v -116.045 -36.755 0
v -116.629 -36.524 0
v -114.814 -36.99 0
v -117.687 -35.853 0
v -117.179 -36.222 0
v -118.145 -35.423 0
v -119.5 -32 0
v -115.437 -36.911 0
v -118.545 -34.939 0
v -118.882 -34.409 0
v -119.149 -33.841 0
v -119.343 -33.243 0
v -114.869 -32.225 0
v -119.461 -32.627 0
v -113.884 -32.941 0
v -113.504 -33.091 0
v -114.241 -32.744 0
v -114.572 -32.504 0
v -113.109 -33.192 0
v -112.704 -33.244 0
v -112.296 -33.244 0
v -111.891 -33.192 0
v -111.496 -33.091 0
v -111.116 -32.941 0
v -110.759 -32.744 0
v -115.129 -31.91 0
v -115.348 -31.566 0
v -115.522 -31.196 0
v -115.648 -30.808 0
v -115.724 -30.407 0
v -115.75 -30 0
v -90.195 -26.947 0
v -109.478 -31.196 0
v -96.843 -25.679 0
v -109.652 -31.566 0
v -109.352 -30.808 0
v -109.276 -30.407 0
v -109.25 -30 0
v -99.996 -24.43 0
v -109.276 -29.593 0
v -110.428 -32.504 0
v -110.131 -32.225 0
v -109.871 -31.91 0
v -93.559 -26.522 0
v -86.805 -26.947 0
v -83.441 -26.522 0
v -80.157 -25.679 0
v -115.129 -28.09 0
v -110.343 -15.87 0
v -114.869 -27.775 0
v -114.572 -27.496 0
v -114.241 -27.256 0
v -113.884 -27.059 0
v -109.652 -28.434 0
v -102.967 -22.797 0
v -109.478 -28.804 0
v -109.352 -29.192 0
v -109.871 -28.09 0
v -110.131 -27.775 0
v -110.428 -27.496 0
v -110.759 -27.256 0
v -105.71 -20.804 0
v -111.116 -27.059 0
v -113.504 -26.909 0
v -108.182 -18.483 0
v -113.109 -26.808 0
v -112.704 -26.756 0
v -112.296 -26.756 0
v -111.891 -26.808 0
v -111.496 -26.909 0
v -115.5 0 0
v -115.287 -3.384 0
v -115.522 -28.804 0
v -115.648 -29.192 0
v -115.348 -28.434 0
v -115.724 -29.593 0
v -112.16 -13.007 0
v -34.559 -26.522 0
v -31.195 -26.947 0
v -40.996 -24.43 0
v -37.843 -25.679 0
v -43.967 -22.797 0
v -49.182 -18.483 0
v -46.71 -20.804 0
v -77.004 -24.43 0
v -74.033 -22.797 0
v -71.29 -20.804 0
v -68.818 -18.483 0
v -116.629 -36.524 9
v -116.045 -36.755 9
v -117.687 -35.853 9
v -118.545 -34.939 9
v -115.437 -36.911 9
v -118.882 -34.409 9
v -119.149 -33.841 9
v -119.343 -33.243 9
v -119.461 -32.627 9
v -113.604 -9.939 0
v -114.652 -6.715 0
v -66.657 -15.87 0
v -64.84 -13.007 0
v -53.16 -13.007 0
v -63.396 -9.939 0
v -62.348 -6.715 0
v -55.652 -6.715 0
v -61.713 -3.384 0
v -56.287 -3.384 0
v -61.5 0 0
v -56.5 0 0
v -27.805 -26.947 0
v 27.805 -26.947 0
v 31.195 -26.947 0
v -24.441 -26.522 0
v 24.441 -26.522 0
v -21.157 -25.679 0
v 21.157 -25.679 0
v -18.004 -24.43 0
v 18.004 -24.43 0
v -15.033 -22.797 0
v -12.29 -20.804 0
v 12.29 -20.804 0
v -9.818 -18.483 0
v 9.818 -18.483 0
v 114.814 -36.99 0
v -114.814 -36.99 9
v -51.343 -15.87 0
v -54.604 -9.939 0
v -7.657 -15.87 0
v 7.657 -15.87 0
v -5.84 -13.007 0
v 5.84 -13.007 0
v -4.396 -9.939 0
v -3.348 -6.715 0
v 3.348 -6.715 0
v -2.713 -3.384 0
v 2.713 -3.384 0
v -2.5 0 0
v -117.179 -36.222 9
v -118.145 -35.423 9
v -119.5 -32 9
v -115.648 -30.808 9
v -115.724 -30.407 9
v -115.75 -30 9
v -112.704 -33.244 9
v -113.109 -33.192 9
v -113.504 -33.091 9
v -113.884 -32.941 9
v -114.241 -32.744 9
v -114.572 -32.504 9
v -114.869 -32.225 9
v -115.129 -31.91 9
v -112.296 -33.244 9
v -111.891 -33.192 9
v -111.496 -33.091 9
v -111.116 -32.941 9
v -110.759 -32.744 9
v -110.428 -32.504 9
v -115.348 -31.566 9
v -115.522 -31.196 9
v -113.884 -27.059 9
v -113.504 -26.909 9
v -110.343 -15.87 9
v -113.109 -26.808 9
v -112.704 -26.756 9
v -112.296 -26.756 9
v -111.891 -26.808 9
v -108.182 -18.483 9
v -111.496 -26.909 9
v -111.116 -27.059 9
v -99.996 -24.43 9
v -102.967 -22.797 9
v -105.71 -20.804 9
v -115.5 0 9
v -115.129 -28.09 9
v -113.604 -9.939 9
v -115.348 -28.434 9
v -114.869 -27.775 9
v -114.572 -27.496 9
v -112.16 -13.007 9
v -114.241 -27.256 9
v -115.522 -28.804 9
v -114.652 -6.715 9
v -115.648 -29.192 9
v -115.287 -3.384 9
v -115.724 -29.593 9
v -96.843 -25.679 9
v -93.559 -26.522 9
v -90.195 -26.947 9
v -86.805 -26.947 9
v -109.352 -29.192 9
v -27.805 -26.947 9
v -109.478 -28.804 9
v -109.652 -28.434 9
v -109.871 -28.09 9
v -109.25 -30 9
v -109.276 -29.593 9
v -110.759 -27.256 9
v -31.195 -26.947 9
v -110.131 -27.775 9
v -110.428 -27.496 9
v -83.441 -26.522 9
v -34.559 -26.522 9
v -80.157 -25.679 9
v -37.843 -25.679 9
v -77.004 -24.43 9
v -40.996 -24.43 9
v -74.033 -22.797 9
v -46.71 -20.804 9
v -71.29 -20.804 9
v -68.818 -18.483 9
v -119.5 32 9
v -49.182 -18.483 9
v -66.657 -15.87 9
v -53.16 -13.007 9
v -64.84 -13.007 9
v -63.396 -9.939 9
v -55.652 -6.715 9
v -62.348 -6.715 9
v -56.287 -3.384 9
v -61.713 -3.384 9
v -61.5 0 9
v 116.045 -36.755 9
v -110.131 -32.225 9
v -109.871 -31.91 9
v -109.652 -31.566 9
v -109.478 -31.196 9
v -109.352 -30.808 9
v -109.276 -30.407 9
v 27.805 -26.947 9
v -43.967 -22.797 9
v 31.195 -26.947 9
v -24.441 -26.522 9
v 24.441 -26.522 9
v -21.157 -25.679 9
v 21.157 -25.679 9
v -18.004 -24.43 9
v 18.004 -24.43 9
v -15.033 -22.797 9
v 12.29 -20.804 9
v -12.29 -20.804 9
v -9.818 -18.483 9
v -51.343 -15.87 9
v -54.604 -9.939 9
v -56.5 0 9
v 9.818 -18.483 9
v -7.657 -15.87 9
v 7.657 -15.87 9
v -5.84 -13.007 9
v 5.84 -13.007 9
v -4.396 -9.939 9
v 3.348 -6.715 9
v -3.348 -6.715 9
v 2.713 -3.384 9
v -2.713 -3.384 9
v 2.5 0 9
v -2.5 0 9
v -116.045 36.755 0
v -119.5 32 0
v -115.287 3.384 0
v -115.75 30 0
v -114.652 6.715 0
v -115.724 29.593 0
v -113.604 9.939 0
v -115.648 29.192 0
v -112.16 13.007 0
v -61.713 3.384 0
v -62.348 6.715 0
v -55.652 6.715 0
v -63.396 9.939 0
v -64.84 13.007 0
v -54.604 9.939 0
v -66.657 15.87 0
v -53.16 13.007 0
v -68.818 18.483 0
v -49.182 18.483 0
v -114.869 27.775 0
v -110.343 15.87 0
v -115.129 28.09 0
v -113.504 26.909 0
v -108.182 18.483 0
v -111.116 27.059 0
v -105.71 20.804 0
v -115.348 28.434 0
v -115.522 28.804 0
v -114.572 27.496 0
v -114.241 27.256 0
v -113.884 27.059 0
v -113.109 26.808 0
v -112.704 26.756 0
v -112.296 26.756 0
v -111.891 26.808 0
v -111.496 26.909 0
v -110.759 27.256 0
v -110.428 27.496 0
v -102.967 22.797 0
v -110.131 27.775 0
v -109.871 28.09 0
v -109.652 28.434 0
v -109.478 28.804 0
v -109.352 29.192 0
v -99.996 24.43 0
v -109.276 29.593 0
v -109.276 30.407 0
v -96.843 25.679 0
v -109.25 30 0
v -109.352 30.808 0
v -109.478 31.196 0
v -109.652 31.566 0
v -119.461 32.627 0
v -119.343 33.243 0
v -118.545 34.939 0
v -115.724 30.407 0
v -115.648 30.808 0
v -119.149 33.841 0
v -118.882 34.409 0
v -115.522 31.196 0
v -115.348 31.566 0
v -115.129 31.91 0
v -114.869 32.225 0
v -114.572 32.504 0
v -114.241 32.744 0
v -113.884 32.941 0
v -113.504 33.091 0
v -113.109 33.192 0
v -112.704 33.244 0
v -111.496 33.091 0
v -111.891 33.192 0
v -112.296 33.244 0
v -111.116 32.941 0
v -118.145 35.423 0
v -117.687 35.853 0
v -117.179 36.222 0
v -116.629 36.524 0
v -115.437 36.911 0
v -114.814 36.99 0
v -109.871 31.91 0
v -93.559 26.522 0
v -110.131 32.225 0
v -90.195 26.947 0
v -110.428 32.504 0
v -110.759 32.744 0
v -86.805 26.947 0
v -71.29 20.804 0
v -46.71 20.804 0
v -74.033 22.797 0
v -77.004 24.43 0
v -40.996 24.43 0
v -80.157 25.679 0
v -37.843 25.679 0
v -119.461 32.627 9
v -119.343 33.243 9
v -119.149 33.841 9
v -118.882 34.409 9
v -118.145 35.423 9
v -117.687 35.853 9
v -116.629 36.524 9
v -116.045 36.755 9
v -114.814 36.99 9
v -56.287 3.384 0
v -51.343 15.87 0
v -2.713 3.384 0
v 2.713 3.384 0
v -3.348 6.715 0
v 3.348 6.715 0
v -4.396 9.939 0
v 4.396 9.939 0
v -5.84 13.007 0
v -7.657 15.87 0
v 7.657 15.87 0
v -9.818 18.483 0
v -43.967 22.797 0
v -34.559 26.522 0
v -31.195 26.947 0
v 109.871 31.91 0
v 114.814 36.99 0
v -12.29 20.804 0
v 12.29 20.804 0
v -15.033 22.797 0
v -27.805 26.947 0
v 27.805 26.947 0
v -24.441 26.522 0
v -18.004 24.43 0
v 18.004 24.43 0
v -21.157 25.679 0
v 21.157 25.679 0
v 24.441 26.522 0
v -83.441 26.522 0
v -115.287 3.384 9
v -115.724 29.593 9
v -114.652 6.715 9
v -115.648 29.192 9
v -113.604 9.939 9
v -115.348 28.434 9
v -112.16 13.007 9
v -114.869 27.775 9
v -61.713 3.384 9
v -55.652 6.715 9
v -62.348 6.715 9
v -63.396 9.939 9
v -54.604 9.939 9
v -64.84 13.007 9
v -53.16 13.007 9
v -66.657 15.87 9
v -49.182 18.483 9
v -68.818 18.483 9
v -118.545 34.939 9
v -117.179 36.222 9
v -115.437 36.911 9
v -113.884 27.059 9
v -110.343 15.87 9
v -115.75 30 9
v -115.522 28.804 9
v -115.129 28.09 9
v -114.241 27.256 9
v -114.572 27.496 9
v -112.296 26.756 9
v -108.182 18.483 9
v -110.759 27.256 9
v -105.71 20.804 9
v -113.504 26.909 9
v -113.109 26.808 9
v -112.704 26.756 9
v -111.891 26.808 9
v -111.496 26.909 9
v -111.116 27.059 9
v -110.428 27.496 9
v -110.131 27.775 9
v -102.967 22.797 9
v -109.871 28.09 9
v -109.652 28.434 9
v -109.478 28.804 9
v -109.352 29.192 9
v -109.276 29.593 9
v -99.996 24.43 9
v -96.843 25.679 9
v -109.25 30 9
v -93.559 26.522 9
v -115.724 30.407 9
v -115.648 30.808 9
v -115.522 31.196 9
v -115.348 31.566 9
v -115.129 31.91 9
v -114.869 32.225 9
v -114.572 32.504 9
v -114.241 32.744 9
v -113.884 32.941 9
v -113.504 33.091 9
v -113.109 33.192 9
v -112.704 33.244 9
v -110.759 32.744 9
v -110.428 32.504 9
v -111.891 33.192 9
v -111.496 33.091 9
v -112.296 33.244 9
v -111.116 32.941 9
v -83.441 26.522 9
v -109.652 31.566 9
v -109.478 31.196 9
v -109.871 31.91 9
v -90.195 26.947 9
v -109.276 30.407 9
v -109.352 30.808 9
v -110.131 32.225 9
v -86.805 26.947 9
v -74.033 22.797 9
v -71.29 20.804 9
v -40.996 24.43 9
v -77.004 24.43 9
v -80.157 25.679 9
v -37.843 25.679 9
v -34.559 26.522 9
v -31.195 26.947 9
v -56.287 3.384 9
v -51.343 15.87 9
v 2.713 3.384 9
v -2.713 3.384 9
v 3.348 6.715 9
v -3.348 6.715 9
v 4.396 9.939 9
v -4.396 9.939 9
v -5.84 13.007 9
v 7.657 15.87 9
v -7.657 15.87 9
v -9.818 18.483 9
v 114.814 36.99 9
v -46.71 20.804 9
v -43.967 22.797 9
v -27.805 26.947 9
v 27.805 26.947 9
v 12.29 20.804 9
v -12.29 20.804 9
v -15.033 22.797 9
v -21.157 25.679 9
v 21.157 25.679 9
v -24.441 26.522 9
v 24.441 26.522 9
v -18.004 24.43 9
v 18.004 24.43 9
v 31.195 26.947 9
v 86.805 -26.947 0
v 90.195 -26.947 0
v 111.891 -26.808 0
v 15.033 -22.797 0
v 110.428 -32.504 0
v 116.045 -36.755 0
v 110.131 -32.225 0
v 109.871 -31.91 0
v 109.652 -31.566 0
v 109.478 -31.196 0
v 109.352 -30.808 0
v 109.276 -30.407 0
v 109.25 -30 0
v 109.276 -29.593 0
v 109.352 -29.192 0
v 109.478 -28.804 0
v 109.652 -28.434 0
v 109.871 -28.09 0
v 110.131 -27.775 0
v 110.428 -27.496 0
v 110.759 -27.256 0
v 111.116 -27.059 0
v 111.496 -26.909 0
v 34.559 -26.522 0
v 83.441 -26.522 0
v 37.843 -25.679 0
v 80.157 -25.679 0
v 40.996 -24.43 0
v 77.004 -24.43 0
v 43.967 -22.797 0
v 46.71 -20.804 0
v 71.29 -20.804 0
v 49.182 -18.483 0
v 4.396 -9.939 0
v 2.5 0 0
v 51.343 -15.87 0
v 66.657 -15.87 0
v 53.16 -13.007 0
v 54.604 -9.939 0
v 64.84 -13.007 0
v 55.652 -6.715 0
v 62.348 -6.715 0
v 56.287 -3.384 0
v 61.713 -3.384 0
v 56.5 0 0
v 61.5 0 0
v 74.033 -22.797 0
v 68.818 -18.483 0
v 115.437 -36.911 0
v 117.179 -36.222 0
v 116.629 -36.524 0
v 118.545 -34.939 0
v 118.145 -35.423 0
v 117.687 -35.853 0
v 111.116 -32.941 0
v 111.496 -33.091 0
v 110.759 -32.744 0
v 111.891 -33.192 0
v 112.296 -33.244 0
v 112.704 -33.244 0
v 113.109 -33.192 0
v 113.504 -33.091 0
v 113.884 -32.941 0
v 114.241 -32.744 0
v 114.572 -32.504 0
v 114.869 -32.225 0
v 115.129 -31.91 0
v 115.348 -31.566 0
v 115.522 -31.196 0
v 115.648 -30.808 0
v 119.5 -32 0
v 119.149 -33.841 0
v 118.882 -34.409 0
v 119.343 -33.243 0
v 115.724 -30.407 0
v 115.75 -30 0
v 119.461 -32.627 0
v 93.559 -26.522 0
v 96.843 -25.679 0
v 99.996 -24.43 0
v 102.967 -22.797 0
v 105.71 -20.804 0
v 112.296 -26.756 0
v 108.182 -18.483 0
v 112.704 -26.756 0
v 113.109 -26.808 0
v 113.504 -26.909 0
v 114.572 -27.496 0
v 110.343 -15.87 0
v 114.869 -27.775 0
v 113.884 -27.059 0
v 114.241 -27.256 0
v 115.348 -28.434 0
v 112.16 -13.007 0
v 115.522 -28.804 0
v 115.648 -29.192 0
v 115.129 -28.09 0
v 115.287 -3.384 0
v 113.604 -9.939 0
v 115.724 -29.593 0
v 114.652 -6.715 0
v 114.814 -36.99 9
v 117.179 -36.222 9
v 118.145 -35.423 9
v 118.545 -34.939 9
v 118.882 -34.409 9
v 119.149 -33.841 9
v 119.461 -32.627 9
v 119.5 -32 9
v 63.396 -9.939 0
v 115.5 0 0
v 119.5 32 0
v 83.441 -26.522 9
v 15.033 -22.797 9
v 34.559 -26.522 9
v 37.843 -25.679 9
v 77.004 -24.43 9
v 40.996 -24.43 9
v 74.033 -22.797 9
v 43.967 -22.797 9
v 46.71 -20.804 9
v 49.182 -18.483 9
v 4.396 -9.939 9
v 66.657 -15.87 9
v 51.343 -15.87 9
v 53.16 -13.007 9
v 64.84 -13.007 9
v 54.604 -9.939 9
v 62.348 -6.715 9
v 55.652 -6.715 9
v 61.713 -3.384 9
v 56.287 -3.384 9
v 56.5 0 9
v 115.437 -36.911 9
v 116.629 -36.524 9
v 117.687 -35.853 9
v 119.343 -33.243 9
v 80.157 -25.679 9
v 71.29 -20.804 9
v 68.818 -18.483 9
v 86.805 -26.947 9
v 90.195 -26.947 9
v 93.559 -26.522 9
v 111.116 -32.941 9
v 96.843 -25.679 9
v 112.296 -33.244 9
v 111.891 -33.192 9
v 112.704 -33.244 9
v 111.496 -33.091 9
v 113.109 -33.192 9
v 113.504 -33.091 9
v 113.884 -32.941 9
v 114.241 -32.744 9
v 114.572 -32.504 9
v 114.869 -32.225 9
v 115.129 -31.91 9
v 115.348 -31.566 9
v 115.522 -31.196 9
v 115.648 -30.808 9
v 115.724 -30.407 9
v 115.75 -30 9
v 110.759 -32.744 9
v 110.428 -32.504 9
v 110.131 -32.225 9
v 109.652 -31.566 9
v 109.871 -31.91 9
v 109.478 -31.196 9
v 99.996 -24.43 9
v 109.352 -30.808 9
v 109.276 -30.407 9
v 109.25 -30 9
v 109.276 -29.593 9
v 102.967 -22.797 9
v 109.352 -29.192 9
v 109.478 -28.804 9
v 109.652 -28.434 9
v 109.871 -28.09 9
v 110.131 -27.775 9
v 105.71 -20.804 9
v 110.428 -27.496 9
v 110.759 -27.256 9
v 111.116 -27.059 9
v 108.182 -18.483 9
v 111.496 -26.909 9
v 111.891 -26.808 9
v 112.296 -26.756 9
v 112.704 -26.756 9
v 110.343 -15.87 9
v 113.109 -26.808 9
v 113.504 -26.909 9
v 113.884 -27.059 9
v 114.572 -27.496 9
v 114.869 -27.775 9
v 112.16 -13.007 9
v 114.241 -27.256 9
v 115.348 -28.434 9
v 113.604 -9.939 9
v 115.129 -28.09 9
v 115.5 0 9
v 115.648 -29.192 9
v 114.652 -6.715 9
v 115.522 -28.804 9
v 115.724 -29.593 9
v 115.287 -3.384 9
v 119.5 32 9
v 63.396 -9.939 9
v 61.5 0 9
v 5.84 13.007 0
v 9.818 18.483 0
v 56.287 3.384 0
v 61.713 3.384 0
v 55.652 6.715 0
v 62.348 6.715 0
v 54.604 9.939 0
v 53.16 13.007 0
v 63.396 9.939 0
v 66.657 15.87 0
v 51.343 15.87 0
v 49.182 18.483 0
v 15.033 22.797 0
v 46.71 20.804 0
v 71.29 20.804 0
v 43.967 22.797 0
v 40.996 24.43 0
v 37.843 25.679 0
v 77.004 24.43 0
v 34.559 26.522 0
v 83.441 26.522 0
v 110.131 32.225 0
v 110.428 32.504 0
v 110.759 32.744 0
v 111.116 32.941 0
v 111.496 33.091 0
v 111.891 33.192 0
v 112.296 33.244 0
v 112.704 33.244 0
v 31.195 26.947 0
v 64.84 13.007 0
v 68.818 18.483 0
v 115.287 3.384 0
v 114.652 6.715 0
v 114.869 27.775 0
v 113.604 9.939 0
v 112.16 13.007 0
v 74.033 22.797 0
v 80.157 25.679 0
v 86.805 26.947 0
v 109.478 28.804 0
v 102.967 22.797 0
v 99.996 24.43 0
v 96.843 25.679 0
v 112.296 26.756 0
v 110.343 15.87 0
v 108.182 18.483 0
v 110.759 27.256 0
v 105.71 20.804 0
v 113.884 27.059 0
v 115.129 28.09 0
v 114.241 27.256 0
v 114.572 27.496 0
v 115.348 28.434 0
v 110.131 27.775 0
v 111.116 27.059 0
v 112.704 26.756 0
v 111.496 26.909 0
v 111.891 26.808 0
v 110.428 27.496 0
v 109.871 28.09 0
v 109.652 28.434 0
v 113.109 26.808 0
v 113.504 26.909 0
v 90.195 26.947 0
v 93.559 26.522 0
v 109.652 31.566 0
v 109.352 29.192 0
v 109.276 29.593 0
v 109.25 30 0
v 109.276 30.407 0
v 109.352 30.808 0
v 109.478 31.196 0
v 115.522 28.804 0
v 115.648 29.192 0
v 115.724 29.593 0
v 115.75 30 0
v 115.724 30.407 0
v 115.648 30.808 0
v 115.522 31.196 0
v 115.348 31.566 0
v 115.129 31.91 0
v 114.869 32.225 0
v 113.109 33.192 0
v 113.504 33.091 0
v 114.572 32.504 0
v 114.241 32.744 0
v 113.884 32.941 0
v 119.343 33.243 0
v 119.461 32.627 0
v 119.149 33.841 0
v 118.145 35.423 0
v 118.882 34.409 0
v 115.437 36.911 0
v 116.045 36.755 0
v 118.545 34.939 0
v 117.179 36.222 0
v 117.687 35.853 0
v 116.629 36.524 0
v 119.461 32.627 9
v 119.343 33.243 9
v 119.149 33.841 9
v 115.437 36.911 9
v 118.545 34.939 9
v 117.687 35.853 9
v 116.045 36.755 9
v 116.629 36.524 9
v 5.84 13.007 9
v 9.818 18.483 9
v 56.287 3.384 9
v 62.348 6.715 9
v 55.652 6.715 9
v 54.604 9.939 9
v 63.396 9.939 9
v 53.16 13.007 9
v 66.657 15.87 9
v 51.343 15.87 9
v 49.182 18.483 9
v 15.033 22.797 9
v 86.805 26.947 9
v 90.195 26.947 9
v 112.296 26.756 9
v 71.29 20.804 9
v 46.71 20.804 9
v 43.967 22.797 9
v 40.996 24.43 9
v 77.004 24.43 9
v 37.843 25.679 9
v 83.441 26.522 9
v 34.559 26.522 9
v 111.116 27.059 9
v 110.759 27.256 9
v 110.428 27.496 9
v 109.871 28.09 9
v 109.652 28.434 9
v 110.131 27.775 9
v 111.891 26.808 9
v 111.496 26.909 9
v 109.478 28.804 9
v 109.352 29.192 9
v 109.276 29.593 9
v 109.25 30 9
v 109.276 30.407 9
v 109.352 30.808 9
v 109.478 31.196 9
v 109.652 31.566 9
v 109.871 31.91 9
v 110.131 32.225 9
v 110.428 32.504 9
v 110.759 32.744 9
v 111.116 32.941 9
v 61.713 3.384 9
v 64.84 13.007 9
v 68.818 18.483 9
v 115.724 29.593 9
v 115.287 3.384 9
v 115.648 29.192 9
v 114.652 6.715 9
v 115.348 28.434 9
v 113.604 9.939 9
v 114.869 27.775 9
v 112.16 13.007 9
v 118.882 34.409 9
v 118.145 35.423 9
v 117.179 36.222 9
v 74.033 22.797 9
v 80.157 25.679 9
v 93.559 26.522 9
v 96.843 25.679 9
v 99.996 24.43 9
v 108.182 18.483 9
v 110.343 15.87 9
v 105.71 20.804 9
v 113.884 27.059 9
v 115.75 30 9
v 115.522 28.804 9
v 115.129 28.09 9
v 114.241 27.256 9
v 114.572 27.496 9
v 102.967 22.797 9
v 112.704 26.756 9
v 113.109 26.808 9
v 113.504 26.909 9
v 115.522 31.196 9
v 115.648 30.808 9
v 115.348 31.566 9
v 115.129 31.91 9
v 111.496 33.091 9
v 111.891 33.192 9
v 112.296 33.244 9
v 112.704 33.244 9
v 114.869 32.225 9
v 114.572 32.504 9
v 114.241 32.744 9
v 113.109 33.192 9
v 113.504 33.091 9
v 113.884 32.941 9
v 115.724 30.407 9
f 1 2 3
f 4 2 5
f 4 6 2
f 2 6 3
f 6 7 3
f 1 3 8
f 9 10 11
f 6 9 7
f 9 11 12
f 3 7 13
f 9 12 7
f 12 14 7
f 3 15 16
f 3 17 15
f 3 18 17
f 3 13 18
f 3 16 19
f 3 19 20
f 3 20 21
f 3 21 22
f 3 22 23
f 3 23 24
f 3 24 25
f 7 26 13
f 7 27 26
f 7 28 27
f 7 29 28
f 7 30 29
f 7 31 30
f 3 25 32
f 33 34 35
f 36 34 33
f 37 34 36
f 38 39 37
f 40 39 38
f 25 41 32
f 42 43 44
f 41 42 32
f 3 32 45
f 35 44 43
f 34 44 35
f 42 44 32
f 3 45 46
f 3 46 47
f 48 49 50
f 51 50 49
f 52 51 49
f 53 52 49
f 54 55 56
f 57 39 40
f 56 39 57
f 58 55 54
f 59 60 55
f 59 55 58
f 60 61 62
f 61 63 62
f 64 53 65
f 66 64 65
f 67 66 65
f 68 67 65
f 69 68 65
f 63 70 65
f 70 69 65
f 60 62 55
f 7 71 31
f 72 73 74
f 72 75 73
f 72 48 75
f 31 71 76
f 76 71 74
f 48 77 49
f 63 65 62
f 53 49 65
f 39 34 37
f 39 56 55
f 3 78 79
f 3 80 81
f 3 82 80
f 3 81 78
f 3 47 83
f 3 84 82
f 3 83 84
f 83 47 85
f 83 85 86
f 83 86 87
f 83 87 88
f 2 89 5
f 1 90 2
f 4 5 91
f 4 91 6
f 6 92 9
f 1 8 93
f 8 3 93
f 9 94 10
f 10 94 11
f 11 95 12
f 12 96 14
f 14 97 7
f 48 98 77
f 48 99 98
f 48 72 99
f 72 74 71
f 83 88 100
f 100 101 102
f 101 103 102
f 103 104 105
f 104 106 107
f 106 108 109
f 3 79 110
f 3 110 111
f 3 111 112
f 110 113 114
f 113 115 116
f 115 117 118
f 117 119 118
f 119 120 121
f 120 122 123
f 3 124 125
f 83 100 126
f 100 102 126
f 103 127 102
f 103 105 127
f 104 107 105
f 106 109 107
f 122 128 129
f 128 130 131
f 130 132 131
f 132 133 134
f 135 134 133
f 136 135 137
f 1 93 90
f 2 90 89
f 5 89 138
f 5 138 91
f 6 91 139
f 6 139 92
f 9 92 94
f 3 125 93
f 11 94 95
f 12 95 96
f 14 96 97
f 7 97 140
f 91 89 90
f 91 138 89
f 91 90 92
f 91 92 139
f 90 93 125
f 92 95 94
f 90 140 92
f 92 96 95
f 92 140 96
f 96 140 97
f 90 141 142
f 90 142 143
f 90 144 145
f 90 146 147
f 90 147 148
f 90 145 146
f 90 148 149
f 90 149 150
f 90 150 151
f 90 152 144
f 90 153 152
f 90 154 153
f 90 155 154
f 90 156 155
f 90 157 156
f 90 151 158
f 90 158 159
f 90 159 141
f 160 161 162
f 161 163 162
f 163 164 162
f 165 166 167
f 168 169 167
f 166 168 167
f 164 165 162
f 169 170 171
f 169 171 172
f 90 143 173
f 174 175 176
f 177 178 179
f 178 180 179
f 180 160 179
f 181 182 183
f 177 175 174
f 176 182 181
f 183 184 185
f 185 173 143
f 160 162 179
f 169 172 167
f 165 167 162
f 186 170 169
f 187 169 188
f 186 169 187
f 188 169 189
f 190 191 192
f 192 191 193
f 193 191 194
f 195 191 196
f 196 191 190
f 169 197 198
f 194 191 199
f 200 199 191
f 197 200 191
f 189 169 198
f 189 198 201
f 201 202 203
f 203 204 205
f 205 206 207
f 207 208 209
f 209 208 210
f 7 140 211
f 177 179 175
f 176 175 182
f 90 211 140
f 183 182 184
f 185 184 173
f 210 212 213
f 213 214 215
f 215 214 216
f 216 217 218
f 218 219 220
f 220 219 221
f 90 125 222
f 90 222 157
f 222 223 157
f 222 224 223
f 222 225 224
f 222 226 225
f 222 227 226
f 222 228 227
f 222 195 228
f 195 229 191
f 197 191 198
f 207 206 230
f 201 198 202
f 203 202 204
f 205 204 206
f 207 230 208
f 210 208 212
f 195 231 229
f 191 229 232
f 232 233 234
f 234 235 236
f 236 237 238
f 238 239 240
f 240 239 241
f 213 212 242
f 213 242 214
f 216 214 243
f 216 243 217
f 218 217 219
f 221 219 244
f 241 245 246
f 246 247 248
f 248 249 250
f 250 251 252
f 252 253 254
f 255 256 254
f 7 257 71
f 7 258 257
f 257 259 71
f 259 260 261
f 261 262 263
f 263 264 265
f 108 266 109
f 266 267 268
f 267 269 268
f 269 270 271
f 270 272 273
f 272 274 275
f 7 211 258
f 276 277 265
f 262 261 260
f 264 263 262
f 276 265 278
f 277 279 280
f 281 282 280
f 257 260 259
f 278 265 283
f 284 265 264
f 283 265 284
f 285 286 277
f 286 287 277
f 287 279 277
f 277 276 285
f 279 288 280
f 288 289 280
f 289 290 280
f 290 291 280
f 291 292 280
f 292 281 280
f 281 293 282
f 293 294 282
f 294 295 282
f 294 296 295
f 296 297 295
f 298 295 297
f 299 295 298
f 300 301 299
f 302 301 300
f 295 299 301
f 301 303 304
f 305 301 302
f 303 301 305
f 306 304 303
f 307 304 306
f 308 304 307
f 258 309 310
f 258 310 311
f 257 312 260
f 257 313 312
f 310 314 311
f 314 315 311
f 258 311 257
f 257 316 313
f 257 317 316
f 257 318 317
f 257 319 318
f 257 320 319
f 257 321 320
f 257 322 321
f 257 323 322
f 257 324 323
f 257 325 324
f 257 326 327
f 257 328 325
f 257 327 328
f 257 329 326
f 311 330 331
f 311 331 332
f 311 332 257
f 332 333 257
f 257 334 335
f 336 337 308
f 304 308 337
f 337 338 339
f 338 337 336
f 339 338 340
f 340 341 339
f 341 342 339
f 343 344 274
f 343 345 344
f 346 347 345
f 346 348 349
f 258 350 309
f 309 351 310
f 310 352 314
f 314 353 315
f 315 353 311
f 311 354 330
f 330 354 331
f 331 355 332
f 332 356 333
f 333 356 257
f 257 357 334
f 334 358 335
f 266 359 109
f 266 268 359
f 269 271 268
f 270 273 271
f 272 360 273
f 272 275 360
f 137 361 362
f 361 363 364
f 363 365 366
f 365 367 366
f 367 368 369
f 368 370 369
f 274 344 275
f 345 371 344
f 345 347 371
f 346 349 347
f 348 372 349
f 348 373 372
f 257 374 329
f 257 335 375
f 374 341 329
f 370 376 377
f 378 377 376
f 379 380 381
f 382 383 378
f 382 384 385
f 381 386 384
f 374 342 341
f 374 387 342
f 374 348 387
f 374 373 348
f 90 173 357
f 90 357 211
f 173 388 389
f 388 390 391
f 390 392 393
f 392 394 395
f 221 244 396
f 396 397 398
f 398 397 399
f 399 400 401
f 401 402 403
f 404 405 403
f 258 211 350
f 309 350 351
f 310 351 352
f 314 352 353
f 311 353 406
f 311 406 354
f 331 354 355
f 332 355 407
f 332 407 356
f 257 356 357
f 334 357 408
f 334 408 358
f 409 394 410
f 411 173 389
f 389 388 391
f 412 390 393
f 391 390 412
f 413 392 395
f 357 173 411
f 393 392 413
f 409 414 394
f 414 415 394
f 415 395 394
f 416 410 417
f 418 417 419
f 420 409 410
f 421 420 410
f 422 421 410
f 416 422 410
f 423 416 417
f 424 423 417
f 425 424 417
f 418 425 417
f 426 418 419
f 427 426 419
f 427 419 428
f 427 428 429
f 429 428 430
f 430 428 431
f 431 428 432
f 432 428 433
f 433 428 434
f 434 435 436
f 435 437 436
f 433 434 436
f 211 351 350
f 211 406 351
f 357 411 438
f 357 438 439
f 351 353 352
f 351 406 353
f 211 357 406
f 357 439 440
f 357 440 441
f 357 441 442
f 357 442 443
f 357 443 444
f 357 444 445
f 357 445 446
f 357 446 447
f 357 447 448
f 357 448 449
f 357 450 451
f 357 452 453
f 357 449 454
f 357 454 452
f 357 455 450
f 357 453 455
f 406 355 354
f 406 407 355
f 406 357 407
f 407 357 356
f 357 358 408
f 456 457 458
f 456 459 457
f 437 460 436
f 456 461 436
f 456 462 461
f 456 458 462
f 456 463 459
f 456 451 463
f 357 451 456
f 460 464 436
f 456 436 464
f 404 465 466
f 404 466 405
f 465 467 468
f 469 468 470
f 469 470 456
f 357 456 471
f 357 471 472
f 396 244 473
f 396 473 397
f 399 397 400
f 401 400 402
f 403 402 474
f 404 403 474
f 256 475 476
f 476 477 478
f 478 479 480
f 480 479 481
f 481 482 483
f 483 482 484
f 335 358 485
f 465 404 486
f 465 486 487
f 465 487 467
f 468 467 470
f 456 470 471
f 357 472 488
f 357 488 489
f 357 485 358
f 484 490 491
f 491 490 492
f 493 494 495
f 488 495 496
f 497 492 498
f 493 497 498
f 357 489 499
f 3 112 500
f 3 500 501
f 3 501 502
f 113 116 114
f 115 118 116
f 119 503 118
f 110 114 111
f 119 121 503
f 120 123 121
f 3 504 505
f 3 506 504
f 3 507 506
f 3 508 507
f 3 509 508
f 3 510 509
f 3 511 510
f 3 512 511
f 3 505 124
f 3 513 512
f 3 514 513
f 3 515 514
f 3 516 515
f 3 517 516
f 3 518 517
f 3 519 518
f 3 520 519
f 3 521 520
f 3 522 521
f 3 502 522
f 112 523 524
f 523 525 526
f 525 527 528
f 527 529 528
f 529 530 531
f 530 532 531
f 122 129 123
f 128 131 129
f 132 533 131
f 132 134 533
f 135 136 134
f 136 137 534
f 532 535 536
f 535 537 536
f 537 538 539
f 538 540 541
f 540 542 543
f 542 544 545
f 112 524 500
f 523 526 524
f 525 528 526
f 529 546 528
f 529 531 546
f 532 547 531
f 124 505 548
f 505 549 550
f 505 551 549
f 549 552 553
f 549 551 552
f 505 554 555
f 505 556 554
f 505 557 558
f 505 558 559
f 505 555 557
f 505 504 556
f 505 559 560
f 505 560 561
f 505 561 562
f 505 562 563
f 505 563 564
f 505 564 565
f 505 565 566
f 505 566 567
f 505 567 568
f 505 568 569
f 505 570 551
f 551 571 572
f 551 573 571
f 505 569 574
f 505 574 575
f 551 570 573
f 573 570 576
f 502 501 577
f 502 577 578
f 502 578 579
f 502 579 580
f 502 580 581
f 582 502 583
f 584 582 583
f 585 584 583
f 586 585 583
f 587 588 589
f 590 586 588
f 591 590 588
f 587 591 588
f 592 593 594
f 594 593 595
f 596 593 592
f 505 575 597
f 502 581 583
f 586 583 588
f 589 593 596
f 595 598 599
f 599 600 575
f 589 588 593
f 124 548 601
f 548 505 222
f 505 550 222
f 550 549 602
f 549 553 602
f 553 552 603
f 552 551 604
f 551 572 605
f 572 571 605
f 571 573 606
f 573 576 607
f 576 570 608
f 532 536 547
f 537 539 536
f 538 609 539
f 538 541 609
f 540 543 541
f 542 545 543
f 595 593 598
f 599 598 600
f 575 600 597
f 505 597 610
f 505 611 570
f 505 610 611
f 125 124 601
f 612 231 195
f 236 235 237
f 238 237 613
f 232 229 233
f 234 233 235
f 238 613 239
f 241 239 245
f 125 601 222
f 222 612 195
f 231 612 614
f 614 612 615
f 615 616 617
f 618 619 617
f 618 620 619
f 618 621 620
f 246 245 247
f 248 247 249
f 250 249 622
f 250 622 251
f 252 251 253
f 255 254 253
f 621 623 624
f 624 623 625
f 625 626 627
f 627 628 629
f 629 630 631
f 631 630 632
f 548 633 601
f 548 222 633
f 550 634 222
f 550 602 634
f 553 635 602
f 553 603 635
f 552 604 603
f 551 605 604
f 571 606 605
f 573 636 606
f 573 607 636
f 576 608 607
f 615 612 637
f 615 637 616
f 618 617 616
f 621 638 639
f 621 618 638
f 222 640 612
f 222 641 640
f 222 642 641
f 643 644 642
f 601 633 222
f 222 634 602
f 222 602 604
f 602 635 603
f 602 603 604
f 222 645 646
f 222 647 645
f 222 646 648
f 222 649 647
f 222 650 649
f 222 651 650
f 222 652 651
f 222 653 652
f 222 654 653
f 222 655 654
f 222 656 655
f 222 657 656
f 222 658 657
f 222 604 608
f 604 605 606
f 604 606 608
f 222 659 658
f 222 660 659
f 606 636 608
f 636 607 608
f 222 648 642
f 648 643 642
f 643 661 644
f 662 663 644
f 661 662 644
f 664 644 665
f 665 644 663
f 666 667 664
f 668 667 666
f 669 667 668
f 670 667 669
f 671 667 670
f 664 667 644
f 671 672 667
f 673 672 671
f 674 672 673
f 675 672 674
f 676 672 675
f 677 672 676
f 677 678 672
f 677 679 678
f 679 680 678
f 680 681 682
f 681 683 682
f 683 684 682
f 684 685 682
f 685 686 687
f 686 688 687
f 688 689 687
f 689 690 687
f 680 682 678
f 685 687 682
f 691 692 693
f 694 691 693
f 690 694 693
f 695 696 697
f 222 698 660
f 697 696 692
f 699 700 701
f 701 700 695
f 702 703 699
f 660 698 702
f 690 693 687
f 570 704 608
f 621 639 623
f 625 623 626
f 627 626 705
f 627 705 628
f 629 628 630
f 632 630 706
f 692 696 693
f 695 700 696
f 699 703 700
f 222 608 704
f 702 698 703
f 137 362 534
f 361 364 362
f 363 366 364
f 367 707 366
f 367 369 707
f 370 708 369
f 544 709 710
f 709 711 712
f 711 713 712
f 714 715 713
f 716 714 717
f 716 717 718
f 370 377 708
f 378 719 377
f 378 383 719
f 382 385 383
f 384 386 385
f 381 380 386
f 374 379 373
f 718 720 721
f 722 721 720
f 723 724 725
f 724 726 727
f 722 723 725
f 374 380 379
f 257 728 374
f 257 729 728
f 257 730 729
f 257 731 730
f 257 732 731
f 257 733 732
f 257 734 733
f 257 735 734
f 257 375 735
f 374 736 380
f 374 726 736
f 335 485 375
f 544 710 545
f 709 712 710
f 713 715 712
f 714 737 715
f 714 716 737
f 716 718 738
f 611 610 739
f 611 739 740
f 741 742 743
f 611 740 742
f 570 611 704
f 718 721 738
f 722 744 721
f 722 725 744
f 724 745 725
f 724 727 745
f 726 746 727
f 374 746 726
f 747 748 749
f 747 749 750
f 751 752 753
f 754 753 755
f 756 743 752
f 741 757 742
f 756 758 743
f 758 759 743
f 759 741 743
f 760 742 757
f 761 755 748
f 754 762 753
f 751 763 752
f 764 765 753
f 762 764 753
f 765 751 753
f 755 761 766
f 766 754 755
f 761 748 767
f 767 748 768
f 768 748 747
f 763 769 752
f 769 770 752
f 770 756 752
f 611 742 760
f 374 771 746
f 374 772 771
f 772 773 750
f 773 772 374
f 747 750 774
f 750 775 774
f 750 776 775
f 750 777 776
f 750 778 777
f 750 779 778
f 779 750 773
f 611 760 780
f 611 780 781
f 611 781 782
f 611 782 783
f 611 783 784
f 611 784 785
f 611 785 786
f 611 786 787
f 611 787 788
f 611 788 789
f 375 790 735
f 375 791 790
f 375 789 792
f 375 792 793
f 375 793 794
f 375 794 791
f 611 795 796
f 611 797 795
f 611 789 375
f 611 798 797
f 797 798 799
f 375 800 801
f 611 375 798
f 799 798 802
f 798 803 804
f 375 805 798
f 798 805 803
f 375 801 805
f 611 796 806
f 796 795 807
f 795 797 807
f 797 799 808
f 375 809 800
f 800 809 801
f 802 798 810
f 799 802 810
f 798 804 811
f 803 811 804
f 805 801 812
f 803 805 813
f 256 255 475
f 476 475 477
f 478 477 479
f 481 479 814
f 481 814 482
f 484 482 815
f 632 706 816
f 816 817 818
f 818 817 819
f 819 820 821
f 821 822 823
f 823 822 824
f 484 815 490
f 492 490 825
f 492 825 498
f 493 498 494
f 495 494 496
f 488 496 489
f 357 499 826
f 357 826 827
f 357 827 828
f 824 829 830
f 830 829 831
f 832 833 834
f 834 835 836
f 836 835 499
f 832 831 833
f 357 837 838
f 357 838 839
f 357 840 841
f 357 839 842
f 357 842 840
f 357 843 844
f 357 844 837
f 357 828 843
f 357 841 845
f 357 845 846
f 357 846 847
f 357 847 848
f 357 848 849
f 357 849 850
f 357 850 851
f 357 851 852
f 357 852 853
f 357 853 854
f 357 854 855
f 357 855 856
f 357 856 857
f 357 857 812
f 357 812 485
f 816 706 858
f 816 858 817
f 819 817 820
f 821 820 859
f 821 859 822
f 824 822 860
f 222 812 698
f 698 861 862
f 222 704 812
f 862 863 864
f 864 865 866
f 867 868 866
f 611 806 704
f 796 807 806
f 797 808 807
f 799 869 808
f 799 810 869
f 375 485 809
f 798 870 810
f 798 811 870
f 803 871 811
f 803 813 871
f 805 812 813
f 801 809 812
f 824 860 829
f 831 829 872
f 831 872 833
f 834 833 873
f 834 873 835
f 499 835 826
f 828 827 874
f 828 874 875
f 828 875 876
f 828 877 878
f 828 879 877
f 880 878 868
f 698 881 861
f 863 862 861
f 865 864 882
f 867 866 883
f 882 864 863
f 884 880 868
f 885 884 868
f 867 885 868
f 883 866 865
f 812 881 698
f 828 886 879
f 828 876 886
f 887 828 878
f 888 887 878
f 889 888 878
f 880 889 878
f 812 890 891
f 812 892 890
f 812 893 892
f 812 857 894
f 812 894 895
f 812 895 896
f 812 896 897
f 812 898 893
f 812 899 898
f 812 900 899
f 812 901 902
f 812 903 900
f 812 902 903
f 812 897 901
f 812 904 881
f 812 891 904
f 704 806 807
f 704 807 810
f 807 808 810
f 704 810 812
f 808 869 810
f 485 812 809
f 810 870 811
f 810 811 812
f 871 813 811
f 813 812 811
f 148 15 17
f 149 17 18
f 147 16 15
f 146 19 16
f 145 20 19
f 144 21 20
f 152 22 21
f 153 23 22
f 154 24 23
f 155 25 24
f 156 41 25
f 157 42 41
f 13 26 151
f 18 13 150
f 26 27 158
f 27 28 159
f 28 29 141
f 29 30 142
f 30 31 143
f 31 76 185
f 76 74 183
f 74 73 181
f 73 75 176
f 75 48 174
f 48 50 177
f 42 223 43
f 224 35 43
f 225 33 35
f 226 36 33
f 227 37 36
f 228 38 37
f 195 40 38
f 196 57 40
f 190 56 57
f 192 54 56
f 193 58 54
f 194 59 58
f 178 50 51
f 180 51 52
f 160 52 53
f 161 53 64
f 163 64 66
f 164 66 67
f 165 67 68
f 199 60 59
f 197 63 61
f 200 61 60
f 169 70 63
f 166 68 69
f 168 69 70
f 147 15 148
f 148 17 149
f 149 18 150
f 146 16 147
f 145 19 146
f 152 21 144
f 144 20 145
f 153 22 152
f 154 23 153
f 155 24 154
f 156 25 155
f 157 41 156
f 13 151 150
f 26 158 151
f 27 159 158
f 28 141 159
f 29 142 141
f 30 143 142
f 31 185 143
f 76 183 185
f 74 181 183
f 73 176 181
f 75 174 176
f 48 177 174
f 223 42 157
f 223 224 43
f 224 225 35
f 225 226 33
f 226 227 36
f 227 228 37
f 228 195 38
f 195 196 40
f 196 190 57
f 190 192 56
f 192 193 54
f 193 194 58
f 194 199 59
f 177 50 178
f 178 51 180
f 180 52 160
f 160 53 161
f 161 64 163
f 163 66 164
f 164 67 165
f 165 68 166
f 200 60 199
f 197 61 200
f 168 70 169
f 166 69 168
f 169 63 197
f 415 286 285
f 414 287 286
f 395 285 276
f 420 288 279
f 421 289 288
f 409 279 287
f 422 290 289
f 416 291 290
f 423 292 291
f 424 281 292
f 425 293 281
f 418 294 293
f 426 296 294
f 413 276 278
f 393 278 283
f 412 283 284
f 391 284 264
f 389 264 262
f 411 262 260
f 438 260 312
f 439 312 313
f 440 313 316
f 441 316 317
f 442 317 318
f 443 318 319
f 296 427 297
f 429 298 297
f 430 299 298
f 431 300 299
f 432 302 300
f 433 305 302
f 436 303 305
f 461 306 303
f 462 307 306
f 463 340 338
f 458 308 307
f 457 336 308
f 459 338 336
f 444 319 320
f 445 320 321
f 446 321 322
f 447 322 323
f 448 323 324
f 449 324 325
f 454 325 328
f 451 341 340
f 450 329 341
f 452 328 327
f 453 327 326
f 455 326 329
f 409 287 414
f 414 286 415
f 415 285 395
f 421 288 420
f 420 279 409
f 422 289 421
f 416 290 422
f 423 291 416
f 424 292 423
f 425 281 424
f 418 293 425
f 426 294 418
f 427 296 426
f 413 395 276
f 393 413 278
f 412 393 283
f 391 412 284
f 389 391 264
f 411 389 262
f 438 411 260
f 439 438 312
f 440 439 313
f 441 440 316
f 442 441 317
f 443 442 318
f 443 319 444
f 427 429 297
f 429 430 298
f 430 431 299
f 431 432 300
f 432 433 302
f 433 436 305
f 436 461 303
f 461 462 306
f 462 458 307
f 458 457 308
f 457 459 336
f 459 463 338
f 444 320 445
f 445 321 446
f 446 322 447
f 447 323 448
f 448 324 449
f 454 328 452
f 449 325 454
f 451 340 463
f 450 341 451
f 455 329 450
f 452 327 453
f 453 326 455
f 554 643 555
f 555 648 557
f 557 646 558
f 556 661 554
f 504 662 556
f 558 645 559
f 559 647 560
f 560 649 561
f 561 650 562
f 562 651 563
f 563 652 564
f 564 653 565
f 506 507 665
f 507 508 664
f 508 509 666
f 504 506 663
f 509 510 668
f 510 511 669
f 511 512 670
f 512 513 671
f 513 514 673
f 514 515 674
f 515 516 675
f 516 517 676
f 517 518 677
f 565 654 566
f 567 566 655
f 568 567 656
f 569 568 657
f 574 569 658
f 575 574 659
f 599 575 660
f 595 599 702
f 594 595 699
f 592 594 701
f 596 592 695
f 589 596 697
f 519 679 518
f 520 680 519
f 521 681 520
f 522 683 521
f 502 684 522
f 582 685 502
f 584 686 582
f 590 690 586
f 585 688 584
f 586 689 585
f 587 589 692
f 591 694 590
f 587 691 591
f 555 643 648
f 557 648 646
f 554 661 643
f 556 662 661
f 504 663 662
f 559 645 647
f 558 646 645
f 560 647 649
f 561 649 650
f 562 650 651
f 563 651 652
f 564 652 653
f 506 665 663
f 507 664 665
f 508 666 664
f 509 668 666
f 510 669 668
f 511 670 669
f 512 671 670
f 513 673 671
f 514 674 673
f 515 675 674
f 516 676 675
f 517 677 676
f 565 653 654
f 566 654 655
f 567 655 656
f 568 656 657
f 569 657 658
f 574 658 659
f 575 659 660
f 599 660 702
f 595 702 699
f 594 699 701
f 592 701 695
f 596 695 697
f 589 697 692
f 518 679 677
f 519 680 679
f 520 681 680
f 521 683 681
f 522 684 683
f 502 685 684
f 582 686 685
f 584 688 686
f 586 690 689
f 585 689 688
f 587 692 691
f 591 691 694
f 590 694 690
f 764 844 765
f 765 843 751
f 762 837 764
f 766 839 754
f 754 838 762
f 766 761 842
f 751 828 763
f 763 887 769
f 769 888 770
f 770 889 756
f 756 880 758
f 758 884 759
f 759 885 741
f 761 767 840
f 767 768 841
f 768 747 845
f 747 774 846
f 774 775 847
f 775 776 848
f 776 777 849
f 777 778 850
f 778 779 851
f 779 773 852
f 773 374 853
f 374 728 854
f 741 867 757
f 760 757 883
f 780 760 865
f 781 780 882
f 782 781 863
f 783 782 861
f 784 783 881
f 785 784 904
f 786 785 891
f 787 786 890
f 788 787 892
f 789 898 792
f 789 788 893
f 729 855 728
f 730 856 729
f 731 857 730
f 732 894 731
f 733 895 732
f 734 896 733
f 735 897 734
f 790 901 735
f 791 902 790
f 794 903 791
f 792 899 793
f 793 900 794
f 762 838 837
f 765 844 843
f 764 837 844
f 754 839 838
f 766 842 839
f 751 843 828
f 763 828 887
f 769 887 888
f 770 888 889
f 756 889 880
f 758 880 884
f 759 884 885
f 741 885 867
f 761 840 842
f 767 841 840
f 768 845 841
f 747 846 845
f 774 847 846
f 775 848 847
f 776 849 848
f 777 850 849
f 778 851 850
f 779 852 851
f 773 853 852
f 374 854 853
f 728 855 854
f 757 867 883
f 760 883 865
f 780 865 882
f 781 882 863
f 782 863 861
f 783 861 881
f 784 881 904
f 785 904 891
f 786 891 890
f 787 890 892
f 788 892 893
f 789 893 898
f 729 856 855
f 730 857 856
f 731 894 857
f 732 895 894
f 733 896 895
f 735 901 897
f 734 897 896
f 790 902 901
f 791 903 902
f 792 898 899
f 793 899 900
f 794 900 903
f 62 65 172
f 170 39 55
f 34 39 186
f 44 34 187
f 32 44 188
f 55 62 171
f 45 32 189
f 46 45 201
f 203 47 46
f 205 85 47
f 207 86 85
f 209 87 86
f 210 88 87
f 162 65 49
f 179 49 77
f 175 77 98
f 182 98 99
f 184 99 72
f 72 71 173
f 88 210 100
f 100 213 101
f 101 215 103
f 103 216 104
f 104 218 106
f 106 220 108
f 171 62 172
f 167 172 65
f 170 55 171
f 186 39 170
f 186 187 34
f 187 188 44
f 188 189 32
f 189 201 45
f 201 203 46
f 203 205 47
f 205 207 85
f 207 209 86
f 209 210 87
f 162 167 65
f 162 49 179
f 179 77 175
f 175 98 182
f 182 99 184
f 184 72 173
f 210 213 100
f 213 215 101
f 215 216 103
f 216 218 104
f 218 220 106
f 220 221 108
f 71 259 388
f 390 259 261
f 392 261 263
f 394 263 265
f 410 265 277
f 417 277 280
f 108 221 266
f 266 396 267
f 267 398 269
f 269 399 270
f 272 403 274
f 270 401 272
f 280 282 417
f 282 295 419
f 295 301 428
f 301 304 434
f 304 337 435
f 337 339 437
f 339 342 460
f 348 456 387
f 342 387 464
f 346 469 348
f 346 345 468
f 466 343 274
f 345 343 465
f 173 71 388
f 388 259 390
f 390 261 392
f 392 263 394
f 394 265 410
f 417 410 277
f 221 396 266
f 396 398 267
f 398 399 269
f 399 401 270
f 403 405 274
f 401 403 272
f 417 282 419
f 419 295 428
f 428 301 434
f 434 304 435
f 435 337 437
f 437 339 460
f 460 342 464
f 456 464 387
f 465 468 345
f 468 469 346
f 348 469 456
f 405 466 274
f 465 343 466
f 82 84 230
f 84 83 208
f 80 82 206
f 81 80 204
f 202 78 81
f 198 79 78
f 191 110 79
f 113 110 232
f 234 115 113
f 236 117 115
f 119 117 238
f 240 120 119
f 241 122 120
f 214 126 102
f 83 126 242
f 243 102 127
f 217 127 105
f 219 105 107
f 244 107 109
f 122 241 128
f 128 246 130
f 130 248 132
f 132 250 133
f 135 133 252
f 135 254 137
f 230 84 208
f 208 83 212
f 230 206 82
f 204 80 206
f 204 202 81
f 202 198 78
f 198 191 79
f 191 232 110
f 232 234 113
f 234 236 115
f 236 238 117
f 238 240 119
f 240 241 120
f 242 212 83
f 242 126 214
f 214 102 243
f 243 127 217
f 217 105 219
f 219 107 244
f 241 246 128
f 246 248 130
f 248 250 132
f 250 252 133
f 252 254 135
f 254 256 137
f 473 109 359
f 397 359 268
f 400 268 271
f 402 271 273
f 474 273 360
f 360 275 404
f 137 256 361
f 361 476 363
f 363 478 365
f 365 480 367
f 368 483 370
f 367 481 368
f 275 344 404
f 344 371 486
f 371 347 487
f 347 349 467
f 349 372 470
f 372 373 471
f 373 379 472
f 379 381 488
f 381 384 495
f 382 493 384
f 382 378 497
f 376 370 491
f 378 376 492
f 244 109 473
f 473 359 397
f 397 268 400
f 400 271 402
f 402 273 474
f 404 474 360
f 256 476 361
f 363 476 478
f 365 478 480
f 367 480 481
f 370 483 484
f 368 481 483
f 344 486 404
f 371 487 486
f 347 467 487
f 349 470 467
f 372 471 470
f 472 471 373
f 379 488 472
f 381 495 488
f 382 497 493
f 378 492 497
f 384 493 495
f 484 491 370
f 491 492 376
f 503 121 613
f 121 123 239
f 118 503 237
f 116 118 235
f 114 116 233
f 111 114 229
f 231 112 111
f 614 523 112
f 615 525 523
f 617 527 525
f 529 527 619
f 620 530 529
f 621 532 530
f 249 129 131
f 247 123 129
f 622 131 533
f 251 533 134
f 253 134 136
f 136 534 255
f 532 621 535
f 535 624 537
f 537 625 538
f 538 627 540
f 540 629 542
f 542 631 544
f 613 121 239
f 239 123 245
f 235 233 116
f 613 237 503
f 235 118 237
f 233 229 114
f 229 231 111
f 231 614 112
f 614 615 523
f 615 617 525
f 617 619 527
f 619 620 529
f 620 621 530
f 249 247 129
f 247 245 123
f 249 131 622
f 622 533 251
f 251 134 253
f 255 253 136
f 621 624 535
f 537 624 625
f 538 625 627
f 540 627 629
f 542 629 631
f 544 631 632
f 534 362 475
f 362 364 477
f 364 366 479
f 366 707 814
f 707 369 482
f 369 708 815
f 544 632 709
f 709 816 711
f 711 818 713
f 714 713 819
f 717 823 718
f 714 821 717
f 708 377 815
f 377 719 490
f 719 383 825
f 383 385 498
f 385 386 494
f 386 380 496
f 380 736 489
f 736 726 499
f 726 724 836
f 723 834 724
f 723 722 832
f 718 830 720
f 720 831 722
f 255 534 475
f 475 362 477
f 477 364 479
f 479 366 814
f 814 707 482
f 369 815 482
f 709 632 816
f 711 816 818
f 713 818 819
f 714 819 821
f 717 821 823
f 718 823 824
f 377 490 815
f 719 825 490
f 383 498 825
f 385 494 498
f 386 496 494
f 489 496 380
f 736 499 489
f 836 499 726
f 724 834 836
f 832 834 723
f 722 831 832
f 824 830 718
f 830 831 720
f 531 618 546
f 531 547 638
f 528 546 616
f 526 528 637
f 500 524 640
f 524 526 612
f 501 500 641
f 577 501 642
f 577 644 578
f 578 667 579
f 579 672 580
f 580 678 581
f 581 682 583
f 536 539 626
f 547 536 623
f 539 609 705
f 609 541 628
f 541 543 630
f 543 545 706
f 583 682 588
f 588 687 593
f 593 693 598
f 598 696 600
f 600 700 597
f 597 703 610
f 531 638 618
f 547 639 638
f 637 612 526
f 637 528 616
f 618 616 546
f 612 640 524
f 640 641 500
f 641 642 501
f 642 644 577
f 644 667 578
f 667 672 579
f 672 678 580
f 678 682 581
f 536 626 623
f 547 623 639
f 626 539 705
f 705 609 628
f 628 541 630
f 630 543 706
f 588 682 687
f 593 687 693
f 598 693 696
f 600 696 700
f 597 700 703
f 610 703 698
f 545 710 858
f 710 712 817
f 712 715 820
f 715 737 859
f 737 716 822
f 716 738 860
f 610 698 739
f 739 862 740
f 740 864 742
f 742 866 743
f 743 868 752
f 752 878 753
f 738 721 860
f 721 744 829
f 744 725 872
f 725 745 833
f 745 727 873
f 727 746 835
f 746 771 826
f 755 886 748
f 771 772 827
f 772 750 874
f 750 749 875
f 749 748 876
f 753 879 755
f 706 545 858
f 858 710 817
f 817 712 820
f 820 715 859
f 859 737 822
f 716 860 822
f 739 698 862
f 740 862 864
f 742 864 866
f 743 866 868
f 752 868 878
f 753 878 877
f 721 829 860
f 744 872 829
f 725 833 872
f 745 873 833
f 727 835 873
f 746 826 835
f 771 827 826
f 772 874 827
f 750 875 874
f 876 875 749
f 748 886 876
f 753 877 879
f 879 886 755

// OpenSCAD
$fn = 50;

difference() {
	union() {
		hull() {
			translate(v = [-114.5, 32.0, 0]) {
				cylinder(h = 9, r = 5);
			}
			translate(v = [114.5, 32.0, 0]) {
				cylinder(h = 9, r = 5);
			}
			translate(v = [-114.5, -32.0, 0]) {
				cylinder(h = 9, r = 5);
			}
			translate(v = [114.5, -32.0, 0]) {
				cylinder(h = 9, r = 5);
			}
		}
	}
	union() {
		translate(v = [-112.5, -30.0, -100.0]) {
			cylinder(h = 200, r = 3.25);
		}
		translate(v = [-112.5, 30.0, -100.0]) {
			cylinder(h = 200, r = 3.25);
		}
		translate(v = [112.5, -30.0, -100.0]) {
			cylinder(h = 200, r = 3.25);
		}
		translate(v = [112.5, 30.0, -100.0]) {
			cylinder(h = 200, r = 3.25);
		}
		translate(v = [-112.5, -30.0, -100.0]) {
			cylinder(h = 200, r = 1.8);
		}
		translate(v = [-112.5, 30.0, -100.0]) {
			cylinder(h = 200, r = 1.8);
		}
		translate(v = [112.5, -30.0, -100.0]) {
			cylinder(h = 200, r = 1.8);
		}
		translate(v = [112.5, 30.0, -100.0]) {
			cylinder(h = 200, r = 1.8);
		}
		translate(v = [-88.5, 0, 0.0]) {
			cylinder(h = 9, r = 27.0);
		}
		translate(v = [-29.5, 0, 0.0]) {
			cylinder(h = 9, r = 27.0);
		}
		translate(v = [29.5, 0, 0.0]) {
			cylinder(h = 9, r = 27.0);
		}
		translate(v = [88.5, 0, 0.0]) {
			cylinder(h = 9, r = 27.0);
		}
	}
}
